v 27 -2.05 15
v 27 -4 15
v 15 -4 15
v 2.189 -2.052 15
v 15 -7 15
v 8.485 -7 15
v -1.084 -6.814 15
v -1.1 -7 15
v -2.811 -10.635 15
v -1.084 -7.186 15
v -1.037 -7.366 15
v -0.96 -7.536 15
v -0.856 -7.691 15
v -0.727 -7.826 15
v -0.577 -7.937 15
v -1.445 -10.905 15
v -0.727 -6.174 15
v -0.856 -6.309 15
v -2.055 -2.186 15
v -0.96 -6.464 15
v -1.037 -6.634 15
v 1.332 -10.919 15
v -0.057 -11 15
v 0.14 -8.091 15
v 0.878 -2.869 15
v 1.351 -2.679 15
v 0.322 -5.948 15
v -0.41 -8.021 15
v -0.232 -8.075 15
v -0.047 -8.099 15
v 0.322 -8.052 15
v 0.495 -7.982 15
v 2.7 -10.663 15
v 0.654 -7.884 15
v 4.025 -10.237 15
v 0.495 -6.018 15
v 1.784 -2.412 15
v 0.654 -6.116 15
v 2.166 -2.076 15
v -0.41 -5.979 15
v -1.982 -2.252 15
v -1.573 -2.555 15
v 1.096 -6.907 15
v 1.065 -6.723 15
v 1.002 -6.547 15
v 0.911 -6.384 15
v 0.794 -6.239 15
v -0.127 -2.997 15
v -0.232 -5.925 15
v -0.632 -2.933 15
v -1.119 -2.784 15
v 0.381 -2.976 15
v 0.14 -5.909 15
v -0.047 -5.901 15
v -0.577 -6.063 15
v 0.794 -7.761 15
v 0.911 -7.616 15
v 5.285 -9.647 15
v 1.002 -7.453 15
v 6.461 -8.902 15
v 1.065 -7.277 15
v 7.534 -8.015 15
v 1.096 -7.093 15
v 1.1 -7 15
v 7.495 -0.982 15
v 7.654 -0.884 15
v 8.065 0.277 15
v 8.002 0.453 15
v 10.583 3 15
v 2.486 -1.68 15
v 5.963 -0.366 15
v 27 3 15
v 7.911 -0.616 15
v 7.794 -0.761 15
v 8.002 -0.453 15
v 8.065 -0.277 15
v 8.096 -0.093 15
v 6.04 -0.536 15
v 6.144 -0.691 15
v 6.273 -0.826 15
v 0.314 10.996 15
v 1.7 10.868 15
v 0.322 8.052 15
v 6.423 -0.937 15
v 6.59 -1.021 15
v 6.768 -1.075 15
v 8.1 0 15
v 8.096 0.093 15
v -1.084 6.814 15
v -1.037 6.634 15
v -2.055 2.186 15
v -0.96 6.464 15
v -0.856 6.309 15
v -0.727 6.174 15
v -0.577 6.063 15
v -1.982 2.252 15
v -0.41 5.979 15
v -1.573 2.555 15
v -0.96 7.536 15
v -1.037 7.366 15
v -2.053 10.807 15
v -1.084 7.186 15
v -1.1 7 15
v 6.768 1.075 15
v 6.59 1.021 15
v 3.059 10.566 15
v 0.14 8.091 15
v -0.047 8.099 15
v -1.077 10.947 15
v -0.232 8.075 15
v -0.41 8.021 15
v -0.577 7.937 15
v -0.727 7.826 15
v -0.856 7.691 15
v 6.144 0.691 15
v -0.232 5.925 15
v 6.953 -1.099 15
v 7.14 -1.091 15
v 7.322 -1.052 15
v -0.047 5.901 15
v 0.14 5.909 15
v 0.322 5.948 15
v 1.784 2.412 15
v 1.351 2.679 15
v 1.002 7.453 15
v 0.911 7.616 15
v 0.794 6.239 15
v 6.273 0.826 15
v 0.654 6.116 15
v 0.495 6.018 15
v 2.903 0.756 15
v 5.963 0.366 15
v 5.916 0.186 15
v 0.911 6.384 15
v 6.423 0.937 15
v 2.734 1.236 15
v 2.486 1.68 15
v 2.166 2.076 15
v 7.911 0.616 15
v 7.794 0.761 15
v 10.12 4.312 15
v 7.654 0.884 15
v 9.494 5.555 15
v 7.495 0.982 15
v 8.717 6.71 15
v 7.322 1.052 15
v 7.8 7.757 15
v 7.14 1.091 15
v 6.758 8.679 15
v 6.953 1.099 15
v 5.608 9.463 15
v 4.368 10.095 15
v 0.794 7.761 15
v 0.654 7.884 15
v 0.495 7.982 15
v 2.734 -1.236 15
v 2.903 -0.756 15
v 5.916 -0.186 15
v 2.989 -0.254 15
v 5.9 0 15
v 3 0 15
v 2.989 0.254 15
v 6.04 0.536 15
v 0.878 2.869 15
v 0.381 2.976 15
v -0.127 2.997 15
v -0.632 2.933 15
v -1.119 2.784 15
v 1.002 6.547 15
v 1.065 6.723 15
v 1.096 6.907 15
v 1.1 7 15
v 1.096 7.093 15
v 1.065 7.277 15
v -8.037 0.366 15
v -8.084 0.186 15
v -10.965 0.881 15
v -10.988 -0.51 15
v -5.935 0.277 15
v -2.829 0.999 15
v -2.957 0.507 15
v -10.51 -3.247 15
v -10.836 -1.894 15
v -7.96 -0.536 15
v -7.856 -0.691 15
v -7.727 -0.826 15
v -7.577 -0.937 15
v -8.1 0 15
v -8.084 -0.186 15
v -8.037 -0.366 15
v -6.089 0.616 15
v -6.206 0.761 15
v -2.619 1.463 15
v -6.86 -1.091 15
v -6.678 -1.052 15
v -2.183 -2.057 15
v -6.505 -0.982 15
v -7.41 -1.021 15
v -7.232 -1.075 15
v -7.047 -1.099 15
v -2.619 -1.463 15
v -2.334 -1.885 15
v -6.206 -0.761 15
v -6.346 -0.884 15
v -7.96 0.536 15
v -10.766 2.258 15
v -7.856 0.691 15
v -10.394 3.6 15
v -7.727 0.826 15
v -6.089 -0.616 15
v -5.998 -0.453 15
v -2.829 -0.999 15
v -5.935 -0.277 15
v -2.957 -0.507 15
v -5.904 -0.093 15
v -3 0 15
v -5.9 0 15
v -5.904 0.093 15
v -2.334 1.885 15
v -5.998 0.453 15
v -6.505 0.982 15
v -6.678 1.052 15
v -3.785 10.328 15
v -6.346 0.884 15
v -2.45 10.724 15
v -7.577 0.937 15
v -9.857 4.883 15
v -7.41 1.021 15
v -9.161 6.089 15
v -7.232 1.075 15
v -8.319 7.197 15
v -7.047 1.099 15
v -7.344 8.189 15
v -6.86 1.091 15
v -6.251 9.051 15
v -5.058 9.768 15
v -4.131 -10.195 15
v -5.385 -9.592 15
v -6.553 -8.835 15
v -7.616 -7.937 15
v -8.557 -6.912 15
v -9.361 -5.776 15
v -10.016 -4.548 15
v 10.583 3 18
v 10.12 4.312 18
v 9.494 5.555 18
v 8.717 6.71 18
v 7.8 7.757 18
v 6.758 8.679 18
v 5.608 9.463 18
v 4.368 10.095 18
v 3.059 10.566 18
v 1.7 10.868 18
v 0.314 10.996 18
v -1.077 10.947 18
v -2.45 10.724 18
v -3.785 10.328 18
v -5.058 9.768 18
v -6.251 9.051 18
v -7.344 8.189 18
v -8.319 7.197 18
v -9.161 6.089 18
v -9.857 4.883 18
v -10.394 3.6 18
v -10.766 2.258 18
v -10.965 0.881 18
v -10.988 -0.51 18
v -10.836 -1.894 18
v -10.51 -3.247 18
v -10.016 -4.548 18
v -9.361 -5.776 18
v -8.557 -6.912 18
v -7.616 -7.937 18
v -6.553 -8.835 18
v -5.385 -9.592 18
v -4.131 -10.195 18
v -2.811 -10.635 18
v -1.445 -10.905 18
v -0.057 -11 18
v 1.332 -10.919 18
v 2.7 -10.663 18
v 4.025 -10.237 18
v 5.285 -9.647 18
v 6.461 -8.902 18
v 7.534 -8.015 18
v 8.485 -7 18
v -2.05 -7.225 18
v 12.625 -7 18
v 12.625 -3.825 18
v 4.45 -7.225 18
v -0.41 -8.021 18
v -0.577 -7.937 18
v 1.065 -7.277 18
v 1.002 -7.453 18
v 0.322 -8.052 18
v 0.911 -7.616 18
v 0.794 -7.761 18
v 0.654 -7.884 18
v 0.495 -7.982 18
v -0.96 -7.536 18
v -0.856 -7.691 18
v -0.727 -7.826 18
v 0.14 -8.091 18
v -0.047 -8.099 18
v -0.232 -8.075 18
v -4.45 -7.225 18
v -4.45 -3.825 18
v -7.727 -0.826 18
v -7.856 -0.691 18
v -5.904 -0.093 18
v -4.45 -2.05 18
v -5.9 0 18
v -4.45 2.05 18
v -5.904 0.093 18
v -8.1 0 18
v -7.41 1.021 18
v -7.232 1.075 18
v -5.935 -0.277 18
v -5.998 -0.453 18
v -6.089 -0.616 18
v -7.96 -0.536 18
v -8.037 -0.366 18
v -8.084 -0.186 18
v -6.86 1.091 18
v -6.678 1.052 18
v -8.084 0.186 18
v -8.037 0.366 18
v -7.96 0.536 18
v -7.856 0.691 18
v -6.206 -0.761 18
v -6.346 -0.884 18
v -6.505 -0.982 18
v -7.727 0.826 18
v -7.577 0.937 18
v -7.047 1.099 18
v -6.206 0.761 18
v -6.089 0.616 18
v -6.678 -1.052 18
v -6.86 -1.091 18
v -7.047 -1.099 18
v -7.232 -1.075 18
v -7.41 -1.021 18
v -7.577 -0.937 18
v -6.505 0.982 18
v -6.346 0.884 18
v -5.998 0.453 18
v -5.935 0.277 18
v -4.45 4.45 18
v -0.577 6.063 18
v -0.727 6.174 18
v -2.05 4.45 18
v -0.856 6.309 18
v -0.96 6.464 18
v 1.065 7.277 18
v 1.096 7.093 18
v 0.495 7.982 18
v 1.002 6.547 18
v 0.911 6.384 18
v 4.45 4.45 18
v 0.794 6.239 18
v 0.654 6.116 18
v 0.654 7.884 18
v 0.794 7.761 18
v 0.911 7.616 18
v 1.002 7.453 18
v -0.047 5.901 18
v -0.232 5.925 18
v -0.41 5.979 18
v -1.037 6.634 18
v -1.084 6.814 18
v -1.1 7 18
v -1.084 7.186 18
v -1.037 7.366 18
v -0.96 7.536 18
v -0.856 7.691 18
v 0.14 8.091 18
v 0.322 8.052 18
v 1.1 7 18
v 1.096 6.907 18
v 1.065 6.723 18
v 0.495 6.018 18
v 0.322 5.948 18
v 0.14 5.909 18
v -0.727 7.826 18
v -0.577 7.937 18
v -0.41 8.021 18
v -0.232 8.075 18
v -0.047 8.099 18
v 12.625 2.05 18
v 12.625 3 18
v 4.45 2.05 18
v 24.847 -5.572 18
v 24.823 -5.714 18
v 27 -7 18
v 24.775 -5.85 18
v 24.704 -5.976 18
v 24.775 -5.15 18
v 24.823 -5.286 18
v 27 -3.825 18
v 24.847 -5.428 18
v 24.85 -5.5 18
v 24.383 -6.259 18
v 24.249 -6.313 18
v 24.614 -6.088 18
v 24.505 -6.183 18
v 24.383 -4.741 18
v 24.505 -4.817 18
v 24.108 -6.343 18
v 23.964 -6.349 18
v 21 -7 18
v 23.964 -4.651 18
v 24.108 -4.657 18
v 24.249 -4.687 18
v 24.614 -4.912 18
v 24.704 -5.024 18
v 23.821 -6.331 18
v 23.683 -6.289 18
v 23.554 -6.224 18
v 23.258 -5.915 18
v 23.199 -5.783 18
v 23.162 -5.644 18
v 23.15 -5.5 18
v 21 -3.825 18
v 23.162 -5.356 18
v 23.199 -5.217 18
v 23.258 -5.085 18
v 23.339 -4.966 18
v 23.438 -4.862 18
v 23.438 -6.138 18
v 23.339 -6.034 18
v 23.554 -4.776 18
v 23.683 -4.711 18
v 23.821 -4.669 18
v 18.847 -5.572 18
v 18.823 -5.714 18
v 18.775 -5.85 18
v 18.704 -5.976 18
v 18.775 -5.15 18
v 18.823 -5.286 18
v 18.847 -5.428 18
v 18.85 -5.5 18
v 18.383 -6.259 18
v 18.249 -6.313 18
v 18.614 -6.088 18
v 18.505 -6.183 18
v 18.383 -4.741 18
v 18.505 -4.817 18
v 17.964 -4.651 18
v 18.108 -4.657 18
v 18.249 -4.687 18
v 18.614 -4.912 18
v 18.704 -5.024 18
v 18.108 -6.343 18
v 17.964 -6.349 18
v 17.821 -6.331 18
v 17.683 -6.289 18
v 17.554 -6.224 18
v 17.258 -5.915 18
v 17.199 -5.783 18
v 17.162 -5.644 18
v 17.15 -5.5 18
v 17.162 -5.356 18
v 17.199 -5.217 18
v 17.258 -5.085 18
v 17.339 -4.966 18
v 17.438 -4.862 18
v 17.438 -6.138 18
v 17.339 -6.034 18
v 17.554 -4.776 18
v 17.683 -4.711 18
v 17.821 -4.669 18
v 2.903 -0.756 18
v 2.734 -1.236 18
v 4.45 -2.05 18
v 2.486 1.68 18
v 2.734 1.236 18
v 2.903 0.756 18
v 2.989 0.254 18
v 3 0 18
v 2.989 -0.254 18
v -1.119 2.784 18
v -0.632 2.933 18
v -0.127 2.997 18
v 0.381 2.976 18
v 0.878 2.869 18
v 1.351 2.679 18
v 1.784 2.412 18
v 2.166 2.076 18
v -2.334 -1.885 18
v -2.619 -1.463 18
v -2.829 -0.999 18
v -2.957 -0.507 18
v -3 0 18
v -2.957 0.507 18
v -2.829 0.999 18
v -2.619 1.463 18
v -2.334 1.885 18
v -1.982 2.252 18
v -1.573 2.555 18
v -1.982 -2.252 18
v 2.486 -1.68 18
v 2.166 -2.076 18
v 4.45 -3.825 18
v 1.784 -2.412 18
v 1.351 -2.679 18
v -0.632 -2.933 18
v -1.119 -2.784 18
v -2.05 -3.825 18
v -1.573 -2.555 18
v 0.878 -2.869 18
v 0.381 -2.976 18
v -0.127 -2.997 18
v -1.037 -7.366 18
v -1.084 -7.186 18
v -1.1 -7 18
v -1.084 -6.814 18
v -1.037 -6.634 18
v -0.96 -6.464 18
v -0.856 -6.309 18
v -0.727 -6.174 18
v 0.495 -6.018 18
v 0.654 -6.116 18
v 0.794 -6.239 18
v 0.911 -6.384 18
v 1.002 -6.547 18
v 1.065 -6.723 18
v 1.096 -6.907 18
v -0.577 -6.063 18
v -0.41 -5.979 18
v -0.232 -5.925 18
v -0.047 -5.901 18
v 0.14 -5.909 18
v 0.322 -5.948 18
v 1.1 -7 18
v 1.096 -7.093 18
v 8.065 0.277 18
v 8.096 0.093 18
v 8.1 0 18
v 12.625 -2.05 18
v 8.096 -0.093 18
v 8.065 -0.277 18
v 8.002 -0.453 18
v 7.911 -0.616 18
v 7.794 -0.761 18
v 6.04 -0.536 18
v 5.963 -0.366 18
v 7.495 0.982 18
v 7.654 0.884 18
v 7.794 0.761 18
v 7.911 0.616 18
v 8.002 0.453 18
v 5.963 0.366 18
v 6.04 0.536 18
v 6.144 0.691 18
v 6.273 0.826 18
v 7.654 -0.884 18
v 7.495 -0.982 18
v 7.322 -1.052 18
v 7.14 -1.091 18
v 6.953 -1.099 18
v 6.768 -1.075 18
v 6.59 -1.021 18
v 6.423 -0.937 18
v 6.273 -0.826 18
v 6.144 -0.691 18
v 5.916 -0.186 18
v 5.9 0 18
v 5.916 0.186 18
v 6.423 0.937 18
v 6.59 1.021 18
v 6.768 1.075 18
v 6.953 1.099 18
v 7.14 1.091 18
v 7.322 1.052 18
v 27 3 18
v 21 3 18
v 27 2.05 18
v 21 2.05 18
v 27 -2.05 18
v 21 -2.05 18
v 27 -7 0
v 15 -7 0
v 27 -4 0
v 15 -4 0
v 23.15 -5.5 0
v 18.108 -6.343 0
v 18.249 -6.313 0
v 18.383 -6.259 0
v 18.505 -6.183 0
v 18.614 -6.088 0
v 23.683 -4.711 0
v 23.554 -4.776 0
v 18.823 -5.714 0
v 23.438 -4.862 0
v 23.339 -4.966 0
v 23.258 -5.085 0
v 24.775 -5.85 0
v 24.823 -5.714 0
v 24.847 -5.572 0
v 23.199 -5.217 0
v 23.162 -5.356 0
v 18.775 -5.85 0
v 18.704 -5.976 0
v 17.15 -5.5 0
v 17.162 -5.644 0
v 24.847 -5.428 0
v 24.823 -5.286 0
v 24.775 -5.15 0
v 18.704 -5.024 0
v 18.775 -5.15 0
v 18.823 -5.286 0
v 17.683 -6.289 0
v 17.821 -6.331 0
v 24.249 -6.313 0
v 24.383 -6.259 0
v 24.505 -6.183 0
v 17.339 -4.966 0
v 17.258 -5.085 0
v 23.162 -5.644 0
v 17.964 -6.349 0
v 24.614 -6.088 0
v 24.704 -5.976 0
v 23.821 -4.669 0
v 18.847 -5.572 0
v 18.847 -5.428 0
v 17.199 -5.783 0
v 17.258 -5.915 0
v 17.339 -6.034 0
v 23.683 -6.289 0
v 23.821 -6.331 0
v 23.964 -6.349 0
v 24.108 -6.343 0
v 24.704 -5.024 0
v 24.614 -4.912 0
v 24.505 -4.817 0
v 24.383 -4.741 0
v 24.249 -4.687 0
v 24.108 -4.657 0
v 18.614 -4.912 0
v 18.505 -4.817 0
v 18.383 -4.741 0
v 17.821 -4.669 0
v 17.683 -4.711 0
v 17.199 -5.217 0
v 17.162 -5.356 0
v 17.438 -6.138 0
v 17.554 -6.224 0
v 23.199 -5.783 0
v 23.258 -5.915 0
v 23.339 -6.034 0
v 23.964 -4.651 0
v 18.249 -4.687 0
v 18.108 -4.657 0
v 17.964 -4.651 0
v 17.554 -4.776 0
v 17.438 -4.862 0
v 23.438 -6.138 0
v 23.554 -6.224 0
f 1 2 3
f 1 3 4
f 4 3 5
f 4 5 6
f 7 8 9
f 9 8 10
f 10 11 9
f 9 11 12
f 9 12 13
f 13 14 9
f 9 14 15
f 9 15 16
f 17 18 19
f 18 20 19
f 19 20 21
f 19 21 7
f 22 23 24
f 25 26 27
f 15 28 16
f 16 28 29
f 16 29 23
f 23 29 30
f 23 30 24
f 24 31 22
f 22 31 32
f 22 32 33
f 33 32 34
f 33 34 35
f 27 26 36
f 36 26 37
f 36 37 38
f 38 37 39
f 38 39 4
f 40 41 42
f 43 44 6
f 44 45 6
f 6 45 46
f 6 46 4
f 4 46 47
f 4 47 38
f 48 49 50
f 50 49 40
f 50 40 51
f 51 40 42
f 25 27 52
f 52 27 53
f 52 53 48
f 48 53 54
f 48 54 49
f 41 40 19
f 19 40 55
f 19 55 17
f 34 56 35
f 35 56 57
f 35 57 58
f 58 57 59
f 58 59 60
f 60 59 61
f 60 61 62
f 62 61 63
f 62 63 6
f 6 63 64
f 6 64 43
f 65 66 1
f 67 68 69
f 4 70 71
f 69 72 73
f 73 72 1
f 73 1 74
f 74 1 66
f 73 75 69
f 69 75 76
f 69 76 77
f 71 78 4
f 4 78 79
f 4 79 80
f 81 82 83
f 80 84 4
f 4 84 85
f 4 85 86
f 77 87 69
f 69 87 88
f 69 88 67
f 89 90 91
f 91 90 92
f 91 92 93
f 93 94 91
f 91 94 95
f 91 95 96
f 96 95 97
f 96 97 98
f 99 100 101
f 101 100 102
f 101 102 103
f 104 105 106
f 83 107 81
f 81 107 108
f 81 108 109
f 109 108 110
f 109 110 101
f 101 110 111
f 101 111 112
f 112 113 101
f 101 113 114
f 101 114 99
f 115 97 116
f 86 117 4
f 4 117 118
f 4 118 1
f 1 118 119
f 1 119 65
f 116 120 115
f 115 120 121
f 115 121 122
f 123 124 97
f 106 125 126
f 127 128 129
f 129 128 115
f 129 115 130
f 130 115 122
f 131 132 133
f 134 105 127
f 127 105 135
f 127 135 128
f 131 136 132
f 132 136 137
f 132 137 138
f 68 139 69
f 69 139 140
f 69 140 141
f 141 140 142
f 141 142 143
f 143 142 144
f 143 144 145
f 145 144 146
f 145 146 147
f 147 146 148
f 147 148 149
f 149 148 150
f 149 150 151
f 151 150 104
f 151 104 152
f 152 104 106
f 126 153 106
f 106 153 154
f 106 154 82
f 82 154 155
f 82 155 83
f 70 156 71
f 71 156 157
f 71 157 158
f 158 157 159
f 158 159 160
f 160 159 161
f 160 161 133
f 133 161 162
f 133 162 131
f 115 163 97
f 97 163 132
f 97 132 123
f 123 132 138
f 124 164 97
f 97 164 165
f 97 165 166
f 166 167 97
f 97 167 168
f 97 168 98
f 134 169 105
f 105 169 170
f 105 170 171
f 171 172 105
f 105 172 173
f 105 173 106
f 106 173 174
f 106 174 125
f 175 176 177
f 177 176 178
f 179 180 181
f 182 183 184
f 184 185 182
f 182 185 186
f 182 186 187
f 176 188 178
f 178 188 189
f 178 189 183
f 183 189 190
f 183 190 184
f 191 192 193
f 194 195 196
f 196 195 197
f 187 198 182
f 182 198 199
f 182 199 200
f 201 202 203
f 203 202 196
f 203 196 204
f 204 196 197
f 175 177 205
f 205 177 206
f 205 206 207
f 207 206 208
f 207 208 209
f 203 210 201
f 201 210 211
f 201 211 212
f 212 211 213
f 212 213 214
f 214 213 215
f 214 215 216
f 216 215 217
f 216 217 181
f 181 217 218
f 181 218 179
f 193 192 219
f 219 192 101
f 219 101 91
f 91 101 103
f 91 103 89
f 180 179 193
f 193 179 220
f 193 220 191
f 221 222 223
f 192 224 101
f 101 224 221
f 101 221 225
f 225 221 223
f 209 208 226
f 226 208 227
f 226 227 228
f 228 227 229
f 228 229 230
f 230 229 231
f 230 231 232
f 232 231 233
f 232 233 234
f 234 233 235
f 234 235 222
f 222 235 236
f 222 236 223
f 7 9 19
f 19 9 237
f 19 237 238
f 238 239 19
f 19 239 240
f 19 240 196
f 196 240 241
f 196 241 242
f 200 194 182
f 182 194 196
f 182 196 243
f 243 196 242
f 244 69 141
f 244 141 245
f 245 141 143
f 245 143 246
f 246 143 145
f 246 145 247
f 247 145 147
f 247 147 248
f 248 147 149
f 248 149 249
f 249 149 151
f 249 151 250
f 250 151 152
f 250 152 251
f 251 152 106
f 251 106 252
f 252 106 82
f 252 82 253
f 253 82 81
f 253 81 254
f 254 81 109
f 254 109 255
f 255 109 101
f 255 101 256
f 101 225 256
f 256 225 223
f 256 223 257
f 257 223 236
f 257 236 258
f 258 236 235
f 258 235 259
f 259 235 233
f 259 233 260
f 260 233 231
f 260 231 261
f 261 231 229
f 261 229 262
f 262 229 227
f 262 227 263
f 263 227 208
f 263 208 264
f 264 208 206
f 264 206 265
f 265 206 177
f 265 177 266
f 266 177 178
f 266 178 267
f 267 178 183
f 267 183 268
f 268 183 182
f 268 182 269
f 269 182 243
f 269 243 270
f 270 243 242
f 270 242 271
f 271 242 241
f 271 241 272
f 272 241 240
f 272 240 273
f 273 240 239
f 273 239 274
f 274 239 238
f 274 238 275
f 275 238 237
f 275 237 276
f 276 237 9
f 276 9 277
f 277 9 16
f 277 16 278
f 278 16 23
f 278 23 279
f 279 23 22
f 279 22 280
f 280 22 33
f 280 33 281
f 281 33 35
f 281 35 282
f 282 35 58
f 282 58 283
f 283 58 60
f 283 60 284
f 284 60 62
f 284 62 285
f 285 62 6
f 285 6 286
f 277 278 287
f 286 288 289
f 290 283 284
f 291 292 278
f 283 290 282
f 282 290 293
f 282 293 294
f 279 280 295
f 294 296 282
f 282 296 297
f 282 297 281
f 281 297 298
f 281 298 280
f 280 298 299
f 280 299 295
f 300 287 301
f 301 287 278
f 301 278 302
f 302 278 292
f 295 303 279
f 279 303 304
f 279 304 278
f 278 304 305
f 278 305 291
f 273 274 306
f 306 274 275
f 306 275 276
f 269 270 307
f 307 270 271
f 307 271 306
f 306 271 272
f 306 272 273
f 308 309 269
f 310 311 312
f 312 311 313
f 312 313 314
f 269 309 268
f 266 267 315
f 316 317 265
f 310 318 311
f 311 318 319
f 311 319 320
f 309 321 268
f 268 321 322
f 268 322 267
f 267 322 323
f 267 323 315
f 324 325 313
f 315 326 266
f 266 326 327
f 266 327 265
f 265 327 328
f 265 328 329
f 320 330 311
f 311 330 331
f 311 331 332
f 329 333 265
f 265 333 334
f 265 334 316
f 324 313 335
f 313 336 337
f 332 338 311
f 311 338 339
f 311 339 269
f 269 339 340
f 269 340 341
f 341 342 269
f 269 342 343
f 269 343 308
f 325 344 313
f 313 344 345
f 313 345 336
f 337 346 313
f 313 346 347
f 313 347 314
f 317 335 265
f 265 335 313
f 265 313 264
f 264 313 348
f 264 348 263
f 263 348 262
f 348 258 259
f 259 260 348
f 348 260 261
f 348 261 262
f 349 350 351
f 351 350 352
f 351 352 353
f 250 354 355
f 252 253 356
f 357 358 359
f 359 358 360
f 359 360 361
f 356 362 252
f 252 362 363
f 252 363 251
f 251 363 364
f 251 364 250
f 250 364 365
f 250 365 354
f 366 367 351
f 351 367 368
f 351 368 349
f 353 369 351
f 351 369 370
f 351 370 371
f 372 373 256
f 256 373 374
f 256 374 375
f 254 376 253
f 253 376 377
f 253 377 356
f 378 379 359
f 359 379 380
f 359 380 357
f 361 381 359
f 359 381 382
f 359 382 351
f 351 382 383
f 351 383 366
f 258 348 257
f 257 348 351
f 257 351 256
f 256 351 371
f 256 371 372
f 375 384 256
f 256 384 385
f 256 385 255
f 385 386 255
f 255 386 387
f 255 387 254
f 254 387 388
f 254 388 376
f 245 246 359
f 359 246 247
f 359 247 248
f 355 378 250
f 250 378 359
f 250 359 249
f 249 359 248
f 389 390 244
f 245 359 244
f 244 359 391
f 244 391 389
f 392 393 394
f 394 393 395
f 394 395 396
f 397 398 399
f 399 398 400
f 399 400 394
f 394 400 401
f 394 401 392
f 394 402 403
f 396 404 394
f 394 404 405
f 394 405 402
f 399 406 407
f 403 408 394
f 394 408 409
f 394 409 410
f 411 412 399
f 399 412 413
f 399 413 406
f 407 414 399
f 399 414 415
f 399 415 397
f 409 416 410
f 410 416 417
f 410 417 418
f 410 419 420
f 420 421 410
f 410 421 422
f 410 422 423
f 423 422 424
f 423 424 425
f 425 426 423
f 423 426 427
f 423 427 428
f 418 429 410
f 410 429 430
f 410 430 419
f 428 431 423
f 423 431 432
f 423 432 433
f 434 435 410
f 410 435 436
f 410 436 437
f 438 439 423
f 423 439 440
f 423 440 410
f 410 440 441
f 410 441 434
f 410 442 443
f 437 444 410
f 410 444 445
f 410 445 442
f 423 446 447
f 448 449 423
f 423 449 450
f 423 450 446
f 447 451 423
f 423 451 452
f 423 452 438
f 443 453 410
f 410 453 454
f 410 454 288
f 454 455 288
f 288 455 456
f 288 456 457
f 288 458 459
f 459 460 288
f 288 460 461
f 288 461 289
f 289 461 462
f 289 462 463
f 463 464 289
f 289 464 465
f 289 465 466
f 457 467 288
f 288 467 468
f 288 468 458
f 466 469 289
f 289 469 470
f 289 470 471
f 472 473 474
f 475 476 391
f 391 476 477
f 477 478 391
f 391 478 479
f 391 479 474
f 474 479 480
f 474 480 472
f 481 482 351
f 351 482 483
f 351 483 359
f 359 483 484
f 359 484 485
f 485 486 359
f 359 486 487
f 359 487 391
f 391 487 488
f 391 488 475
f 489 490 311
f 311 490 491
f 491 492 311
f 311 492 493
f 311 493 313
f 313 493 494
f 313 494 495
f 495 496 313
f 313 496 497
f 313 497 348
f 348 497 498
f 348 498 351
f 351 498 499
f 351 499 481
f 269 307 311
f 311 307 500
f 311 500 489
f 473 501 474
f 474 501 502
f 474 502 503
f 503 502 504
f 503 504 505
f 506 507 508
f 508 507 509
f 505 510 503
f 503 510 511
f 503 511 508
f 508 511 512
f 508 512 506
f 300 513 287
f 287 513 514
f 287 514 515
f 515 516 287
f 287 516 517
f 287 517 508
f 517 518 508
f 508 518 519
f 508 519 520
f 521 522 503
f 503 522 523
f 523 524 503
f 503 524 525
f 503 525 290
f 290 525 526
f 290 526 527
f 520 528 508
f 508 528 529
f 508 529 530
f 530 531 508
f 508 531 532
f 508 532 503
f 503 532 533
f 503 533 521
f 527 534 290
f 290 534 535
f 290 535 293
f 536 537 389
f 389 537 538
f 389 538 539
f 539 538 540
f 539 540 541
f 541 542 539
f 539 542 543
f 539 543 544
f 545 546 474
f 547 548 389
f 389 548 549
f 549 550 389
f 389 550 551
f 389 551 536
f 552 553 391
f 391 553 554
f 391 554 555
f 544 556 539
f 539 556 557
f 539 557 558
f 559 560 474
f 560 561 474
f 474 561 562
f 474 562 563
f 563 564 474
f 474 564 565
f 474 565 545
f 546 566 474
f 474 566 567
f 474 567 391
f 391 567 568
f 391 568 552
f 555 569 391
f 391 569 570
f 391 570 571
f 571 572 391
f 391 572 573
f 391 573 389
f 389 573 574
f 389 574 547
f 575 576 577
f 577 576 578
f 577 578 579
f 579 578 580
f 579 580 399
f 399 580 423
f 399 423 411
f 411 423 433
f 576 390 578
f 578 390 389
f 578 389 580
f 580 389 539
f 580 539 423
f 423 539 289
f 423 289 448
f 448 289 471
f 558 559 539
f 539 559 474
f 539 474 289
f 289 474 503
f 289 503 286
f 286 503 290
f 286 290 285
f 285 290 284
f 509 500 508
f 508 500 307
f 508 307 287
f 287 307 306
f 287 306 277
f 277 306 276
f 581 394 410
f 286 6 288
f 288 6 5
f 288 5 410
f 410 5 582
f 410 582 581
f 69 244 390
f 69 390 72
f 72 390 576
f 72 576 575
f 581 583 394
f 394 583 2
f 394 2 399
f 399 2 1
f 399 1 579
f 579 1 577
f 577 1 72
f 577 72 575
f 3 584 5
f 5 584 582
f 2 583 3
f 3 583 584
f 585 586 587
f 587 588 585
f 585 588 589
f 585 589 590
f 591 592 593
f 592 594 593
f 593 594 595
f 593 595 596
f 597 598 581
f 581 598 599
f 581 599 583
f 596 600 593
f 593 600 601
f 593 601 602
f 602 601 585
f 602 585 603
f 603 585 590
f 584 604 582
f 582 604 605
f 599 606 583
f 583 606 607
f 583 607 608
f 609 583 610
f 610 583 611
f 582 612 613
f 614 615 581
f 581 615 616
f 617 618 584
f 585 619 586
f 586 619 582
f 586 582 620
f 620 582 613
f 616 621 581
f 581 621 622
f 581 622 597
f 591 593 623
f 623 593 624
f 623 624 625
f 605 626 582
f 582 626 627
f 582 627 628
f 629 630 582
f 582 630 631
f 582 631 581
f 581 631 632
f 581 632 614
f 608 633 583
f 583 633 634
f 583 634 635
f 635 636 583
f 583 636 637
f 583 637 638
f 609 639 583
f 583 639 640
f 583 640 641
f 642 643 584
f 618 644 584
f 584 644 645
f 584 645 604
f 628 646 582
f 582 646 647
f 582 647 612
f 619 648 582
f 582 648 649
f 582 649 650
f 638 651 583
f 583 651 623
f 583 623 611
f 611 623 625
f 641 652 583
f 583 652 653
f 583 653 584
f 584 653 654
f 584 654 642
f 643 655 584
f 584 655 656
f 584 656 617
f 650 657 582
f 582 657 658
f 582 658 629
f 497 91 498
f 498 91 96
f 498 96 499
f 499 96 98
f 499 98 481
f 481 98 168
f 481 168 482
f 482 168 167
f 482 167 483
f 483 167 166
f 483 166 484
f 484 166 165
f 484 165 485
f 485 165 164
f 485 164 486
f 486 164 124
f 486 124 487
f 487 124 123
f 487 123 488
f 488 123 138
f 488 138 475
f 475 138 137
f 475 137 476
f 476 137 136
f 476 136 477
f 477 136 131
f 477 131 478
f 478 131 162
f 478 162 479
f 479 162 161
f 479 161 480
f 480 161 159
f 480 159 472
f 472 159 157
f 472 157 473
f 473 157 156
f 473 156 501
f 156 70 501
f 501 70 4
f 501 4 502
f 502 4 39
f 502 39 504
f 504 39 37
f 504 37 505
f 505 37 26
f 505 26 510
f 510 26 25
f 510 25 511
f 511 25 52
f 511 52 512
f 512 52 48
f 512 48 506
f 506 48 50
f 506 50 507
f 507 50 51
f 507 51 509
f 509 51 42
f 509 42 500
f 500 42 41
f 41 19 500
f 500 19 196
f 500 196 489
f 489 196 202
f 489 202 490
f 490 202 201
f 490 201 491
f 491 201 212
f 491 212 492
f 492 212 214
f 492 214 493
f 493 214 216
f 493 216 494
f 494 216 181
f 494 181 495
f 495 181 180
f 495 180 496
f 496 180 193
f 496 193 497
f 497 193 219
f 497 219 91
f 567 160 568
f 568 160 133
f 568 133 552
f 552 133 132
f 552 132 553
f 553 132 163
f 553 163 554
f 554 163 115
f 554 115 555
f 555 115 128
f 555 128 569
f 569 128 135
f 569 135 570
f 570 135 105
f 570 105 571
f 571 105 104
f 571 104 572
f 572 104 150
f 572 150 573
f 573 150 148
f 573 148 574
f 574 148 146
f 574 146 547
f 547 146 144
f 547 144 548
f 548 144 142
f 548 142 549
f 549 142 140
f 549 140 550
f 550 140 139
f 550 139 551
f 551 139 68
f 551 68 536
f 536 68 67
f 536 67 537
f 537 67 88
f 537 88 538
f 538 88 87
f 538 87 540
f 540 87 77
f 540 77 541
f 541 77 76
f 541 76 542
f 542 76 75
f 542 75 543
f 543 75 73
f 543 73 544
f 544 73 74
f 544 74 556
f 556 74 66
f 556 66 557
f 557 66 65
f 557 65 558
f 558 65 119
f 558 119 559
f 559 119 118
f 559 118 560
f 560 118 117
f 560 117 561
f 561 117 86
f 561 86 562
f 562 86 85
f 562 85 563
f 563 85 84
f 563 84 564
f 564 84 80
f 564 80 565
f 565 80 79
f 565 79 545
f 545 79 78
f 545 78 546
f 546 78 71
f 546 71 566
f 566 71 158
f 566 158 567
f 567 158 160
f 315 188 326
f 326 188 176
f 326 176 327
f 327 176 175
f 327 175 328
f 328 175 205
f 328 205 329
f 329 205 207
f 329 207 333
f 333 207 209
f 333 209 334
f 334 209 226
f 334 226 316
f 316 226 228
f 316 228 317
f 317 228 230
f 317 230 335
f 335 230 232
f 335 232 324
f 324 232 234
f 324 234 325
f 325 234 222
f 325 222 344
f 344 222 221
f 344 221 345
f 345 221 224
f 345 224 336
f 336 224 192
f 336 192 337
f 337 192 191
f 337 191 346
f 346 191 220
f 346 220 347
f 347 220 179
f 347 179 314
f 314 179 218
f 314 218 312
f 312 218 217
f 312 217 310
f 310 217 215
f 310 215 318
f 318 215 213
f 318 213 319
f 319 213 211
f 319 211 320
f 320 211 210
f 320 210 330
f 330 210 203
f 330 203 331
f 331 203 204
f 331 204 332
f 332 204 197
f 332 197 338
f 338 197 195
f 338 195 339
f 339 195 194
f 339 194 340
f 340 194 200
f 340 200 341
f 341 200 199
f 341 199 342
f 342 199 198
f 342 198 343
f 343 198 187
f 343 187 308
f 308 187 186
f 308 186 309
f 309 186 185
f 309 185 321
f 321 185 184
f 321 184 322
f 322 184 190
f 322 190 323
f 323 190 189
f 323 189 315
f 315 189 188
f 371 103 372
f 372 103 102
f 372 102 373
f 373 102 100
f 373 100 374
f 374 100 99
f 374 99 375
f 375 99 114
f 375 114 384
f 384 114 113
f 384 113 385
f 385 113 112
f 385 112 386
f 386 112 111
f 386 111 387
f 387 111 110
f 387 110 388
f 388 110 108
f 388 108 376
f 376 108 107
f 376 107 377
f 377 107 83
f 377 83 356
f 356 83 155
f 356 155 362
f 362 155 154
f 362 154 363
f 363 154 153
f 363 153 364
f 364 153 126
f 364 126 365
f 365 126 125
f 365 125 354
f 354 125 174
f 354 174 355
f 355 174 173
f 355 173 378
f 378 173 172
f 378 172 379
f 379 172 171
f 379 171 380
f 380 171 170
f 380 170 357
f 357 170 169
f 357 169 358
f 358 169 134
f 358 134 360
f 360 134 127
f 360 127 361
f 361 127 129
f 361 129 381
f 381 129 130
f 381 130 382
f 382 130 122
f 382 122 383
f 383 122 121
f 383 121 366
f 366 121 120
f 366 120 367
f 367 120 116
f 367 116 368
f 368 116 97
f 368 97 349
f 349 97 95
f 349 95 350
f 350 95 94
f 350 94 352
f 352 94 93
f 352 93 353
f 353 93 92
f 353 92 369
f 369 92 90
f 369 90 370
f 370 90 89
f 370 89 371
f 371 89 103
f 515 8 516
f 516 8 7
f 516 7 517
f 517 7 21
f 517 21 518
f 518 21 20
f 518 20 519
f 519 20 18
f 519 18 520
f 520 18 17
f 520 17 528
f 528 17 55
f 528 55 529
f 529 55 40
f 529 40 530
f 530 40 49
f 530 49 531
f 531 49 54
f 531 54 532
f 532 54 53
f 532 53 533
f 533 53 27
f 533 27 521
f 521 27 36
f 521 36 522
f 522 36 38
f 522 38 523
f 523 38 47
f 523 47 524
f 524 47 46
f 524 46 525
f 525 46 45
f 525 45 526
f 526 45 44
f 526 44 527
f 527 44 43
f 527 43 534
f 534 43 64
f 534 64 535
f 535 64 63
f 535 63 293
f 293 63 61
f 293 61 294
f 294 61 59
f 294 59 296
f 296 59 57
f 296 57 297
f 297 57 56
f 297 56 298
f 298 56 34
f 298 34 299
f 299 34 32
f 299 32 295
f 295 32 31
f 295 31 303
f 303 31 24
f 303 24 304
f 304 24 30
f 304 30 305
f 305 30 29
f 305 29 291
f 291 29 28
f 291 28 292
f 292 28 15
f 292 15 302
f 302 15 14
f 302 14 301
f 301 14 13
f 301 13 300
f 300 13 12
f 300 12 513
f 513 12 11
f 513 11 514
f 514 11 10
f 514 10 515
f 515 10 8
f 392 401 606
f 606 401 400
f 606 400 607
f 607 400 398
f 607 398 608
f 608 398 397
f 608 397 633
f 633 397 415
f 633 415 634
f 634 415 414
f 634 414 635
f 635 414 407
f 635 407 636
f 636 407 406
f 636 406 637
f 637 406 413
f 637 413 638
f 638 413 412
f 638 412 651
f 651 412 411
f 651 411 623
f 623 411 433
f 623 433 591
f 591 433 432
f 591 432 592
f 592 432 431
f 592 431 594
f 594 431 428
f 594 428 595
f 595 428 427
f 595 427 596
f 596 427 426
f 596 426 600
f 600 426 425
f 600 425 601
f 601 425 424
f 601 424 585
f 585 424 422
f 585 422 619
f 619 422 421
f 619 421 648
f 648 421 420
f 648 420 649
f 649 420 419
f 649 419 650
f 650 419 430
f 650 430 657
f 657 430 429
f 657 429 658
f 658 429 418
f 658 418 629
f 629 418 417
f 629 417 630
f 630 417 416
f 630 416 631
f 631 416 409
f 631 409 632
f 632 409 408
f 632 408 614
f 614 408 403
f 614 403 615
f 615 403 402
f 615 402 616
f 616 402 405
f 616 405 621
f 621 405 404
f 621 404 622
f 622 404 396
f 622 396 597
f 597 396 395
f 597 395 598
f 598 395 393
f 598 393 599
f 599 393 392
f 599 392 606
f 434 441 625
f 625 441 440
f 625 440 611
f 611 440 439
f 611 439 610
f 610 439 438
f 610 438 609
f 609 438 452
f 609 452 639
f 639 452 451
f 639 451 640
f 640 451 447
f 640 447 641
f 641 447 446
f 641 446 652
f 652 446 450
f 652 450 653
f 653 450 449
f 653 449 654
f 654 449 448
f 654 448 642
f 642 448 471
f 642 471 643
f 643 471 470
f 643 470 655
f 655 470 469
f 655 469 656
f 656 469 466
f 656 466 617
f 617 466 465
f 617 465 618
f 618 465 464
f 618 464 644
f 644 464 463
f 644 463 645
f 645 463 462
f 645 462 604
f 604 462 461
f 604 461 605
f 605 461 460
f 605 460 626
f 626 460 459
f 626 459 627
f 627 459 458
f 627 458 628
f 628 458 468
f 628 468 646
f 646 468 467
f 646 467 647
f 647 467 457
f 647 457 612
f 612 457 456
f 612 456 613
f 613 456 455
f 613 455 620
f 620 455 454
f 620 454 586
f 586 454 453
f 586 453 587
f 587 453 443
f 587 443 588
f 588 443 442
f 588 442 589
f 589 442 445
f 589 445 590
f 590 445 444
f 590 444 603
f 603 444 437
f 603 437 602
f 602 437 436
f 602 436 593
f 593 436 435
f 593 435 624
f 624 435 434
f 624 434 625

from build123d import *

# Parameters (mm, degrees)
STOCK_HORN_ATTACHMENT_START         = 15
STOCK_HORN_ATTACHMENT_PROFILE_R     = 11
STOCK_HORN_ATTACHMENT_DEPTH         = 3
FINGER_ARM_START                    = 15
FINGER_ARM_PROFILE_W                = 27
FINGER_ARM_PROFILE_H                = 10
FINGER_ARM_DEPTH                    = 3
DESCENDING_CONTACT_FINGER_PROFILE_W = 12
DESCENDING_CONTACT_FINGER_PROFILE_H = 3
DESCENDING_CONTACT_FINGER_DEPTH     = 18
HORN_CENTER_ACCESS_START            = -50
HORN_CENTER_ACCESS_PROFILE_R        = 3
HORN_CENTER_ACCESS_DEPTH            = 85.263683398
HORN_SCREWS_START                   = -50
HORN_SCREWS_PROFILE_R               = 1.1
HORN_SCREWS_DEPTH                   = 85.263683398
CONTACT_PAD_KEEPER_START            = -50
CONTACT_PAD_KEEPER_PROFILE_R        = 0.85
CONTACT_PAD_KEEPER_DEPTH            = 85.263683398


with BuildPart() as part:
    # Stock_horn_attachment_profile → Stock_horn_attachment (new body)
    with BuildSketch(Plane.XY.offset(STOCK_HORN_ATTACHMENT_START)):
        Circle(STOCK_HORN_ATTACHMENT_PROFILE_R)
    extrude(amount=STOCK_HORN_ATTACHMENT_DEPTH)

    # Finger_arm_profile → Finger_arm (add)
    with BuildSketch(Plane.XY.offset(FINGER_ARM_START)):
        with Locations((13.5, -2)):
            Rectangle(FINGER_ARM_PROFILE_W, FINGER_ARM_PROFILE_H)
    extrude(amount=FINGER_ARM_DEPTH)

    # Descending_contact_finger_profile → Descending_contact_finger (add)
    with BuildSketch(Plane.XY):
        with Locations((21, -5.5)):
            Rectangle(DESCENDING_CONTACT_FINGER_PROFILE_W, DESCENDING_CONTACT_FINGER_PROFILE_H)
    extrude(amount=DESCENDING_CONTACT_FINGER_DEPTH)

    # Horn_center_access_profile → Horn_center_access (cut, through all)
    with BuildSketch(Plane.XY.offset(HORN_CENTER_ACCESS_START)):
        Circle(HORN_CENTER_ACCESS_PROFILE_R)
    extrude(amount=HORN_CENTER_ACCESS_DEPTH, mode=Mode.SUBTRACT)

    # Horn_screws_profile → Horn_screws (cut, through all)
    with BuildSketch(Plane.XY.offset(HORN_SCREWS_START)):
        with Locations((0, -7)):
            Circle(HORN_SCREWS_PROFILE_R)
        with Locations((0, 7)):
            Circle(HORN_SCREWS_PROFILE_R)
        with Locations((-7, 0)):
            Circle(HORN_SCREWS_PROFILE_R)
        with Locations((7, 0)):
            Circle(HORN_SCREWS_PROFILE_R)
    extrude(amount=HORN_SCREWS_DEPTH, mode=Mode.SUBTRACT)

    # Contact_pad_keeper_profile → Contact_pad_keeper (cut, through all)
    with BuildSketch(Plane.XY.offset(CONTACT_PAD_KEEPER_START)):
        with Locations(Location((18, -5.5, 0), (0, 0, 180))):
            Circle(CONTACT_PAD_KEEPER_PROFILE_R)
        with Locations(Location((24, -5.5, 0), (0, 0, 180))):
            Circle(CONTACT_PAD_KEEPER_PROFILE_R)
    extrude(amount=CONTACT_PAD_KEEPER_DEPTH, mode=Mode.SUBTRACT)


solid = part.part
